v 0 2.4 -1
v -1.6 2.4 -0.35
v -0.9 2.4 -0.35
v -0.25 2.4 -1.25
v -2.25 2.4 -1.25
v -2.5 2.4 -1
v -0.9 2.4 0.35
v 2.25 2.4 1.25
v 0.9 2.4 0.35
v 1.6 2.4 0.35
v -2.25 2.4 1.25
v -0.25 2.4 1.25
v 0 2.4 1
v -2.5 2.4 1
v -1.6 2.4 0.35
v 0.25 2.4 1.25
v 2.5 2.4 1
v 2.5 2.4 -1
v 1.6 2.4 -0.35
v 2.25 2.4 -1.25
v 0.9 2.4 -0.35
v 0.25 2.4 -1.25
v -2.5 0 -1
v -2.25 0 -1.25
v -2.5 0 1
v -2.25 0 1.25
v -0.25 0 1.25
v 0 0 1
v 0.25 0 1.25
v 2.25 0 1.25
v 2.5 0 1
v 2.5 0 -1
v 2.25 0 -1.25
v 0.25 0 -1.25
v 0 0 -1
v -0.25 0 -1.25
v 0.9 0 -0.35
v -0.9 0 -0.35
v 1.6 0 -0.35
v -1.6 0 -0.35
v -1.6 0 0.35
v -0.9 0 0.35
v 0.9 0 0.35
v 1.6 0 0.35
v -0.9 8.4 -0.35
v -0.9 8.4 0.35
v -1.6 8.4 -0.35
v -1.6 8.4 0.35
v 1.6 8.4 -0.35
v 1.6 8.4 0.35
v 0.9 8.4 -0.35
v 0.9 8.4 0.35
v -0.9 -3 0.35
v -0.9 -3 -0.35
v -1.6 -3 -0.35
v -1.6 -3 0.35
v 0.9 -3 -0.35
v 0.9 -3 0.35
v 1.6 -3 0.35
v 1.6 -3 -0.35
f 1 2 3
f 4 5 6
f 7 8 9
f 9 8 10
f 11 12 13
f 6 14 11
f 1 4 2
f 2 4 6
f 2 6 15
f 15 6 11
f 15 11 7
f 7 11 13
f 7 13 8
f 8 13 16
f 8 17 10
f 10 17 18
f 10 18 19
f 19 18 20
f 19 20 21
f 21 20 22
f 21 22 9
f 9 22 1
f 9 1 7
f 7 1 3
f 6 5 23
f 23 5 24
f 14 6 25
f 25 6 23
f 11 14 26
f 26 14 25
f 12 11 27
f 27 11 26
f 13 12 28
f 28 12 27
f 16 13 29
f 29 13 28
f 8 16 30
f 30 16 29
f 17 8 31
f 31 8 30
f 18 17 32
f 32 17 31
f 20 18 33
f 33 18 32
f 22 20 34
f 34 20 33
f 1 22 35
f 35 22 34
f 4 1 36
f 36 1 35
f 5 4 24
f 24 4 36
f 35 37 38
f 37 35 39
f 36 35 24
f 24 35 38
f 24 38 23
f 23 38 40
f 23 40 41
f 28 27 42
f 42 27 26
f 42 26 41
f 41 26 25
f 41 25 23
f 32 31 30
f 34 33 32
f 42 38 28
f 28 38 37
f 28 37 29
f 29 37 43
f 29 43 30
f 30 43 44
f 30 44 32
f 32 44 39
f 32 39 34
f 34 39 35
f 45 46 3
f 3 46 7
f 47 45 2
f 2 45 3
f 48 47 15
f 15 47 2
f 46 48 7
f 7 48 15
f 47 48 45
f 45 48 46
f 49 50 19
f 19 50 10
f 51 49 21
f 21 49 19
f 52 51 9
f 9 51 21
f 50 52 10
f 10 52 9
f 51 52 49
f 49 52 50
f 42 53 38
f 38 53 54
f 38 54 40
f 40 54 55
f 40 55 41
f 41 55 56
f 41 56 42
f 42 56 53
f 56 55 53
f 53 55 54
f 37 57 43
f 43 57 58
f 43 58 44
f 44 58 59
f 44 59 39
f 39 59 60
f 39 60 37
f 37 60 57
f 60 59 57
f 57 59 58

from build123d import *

# Parameters (mm, degrees)
SALIENTE_EXTRUIR1_DEPTH      = 2.4
CROQUIS2_W                   = 0.7
CROQUIS2_H                   = 0.7
SALIENTE_EXTRUIR2_DEPTH      = 6
SALIENTE_EXTRUIR3_DEPTH      = 3
SALIENTE_EXTRUIR3_DEPTH_BACK = 2
CROQUIS3_W                   = 0.7
CROQUIS3_H                   = 0.7


with BuildPart() as part:
    # Croquis1 → Saliente-Extruir1 (new body)
    with BuildSketch(Plane(origin=(0, 0, 0), x_dir=(1, 0, 0), z_dir=(0, 1, 0))):
        Polygon((-2.25, 1.25), (-0.25, 1.25), (0, 1), (0.25, 1.25), (2.25, 1.25), (2.5, 1), (2.5, -1), (2.25, -1.25), (0.25, -1.25), (0, -1), (-0.25, -1.25), (-2.25, -1.25), (-2.5, -1), (-2.5, 1), align=None)
    extrude(amount=SALIENTE_EXTRUIR1_DEPTH)

    # Croquis2 → Saliente-Extruir2 (add)
    with BuildSketch(Plane(origin=(0, 2.4, 0), x_dir=(1, 0, 0), z_dir=(0, 1, 0))):
        with Locations((-1.25, 0)):
            Rectangle(CROQUIS2_W, CROQUIS2_H)
        with Locations((1.25, 0)):
            Rectangle(CROQUIS2_W, CROQUIS2_H)
    extrude(amount=SALIENTE_EXTRUIR2_DEPTH)

    # Croquis3 → Saliente-Extruir3 (add, two sides: drawn at the far end of the back side and taken through both)
    with BuildSketch(Plane.XZ.offset(-SALIENTE_EXTRUIR3_DEPTH_BACK)):
        with Locations((-1.25, 0)):
            Rectangle(CROQUIS3_W, CROQUIS3_H)
        with Locations((1.25, 0)):
            Rectangle(CROQUIS3_W, CROQUIS3_H)
    extrude(amount=SALIENTE_EXTRUIR3_DEPTH + SALIENTE_EXTRUIR3_DEPTH_BACK)


solid = part.part
